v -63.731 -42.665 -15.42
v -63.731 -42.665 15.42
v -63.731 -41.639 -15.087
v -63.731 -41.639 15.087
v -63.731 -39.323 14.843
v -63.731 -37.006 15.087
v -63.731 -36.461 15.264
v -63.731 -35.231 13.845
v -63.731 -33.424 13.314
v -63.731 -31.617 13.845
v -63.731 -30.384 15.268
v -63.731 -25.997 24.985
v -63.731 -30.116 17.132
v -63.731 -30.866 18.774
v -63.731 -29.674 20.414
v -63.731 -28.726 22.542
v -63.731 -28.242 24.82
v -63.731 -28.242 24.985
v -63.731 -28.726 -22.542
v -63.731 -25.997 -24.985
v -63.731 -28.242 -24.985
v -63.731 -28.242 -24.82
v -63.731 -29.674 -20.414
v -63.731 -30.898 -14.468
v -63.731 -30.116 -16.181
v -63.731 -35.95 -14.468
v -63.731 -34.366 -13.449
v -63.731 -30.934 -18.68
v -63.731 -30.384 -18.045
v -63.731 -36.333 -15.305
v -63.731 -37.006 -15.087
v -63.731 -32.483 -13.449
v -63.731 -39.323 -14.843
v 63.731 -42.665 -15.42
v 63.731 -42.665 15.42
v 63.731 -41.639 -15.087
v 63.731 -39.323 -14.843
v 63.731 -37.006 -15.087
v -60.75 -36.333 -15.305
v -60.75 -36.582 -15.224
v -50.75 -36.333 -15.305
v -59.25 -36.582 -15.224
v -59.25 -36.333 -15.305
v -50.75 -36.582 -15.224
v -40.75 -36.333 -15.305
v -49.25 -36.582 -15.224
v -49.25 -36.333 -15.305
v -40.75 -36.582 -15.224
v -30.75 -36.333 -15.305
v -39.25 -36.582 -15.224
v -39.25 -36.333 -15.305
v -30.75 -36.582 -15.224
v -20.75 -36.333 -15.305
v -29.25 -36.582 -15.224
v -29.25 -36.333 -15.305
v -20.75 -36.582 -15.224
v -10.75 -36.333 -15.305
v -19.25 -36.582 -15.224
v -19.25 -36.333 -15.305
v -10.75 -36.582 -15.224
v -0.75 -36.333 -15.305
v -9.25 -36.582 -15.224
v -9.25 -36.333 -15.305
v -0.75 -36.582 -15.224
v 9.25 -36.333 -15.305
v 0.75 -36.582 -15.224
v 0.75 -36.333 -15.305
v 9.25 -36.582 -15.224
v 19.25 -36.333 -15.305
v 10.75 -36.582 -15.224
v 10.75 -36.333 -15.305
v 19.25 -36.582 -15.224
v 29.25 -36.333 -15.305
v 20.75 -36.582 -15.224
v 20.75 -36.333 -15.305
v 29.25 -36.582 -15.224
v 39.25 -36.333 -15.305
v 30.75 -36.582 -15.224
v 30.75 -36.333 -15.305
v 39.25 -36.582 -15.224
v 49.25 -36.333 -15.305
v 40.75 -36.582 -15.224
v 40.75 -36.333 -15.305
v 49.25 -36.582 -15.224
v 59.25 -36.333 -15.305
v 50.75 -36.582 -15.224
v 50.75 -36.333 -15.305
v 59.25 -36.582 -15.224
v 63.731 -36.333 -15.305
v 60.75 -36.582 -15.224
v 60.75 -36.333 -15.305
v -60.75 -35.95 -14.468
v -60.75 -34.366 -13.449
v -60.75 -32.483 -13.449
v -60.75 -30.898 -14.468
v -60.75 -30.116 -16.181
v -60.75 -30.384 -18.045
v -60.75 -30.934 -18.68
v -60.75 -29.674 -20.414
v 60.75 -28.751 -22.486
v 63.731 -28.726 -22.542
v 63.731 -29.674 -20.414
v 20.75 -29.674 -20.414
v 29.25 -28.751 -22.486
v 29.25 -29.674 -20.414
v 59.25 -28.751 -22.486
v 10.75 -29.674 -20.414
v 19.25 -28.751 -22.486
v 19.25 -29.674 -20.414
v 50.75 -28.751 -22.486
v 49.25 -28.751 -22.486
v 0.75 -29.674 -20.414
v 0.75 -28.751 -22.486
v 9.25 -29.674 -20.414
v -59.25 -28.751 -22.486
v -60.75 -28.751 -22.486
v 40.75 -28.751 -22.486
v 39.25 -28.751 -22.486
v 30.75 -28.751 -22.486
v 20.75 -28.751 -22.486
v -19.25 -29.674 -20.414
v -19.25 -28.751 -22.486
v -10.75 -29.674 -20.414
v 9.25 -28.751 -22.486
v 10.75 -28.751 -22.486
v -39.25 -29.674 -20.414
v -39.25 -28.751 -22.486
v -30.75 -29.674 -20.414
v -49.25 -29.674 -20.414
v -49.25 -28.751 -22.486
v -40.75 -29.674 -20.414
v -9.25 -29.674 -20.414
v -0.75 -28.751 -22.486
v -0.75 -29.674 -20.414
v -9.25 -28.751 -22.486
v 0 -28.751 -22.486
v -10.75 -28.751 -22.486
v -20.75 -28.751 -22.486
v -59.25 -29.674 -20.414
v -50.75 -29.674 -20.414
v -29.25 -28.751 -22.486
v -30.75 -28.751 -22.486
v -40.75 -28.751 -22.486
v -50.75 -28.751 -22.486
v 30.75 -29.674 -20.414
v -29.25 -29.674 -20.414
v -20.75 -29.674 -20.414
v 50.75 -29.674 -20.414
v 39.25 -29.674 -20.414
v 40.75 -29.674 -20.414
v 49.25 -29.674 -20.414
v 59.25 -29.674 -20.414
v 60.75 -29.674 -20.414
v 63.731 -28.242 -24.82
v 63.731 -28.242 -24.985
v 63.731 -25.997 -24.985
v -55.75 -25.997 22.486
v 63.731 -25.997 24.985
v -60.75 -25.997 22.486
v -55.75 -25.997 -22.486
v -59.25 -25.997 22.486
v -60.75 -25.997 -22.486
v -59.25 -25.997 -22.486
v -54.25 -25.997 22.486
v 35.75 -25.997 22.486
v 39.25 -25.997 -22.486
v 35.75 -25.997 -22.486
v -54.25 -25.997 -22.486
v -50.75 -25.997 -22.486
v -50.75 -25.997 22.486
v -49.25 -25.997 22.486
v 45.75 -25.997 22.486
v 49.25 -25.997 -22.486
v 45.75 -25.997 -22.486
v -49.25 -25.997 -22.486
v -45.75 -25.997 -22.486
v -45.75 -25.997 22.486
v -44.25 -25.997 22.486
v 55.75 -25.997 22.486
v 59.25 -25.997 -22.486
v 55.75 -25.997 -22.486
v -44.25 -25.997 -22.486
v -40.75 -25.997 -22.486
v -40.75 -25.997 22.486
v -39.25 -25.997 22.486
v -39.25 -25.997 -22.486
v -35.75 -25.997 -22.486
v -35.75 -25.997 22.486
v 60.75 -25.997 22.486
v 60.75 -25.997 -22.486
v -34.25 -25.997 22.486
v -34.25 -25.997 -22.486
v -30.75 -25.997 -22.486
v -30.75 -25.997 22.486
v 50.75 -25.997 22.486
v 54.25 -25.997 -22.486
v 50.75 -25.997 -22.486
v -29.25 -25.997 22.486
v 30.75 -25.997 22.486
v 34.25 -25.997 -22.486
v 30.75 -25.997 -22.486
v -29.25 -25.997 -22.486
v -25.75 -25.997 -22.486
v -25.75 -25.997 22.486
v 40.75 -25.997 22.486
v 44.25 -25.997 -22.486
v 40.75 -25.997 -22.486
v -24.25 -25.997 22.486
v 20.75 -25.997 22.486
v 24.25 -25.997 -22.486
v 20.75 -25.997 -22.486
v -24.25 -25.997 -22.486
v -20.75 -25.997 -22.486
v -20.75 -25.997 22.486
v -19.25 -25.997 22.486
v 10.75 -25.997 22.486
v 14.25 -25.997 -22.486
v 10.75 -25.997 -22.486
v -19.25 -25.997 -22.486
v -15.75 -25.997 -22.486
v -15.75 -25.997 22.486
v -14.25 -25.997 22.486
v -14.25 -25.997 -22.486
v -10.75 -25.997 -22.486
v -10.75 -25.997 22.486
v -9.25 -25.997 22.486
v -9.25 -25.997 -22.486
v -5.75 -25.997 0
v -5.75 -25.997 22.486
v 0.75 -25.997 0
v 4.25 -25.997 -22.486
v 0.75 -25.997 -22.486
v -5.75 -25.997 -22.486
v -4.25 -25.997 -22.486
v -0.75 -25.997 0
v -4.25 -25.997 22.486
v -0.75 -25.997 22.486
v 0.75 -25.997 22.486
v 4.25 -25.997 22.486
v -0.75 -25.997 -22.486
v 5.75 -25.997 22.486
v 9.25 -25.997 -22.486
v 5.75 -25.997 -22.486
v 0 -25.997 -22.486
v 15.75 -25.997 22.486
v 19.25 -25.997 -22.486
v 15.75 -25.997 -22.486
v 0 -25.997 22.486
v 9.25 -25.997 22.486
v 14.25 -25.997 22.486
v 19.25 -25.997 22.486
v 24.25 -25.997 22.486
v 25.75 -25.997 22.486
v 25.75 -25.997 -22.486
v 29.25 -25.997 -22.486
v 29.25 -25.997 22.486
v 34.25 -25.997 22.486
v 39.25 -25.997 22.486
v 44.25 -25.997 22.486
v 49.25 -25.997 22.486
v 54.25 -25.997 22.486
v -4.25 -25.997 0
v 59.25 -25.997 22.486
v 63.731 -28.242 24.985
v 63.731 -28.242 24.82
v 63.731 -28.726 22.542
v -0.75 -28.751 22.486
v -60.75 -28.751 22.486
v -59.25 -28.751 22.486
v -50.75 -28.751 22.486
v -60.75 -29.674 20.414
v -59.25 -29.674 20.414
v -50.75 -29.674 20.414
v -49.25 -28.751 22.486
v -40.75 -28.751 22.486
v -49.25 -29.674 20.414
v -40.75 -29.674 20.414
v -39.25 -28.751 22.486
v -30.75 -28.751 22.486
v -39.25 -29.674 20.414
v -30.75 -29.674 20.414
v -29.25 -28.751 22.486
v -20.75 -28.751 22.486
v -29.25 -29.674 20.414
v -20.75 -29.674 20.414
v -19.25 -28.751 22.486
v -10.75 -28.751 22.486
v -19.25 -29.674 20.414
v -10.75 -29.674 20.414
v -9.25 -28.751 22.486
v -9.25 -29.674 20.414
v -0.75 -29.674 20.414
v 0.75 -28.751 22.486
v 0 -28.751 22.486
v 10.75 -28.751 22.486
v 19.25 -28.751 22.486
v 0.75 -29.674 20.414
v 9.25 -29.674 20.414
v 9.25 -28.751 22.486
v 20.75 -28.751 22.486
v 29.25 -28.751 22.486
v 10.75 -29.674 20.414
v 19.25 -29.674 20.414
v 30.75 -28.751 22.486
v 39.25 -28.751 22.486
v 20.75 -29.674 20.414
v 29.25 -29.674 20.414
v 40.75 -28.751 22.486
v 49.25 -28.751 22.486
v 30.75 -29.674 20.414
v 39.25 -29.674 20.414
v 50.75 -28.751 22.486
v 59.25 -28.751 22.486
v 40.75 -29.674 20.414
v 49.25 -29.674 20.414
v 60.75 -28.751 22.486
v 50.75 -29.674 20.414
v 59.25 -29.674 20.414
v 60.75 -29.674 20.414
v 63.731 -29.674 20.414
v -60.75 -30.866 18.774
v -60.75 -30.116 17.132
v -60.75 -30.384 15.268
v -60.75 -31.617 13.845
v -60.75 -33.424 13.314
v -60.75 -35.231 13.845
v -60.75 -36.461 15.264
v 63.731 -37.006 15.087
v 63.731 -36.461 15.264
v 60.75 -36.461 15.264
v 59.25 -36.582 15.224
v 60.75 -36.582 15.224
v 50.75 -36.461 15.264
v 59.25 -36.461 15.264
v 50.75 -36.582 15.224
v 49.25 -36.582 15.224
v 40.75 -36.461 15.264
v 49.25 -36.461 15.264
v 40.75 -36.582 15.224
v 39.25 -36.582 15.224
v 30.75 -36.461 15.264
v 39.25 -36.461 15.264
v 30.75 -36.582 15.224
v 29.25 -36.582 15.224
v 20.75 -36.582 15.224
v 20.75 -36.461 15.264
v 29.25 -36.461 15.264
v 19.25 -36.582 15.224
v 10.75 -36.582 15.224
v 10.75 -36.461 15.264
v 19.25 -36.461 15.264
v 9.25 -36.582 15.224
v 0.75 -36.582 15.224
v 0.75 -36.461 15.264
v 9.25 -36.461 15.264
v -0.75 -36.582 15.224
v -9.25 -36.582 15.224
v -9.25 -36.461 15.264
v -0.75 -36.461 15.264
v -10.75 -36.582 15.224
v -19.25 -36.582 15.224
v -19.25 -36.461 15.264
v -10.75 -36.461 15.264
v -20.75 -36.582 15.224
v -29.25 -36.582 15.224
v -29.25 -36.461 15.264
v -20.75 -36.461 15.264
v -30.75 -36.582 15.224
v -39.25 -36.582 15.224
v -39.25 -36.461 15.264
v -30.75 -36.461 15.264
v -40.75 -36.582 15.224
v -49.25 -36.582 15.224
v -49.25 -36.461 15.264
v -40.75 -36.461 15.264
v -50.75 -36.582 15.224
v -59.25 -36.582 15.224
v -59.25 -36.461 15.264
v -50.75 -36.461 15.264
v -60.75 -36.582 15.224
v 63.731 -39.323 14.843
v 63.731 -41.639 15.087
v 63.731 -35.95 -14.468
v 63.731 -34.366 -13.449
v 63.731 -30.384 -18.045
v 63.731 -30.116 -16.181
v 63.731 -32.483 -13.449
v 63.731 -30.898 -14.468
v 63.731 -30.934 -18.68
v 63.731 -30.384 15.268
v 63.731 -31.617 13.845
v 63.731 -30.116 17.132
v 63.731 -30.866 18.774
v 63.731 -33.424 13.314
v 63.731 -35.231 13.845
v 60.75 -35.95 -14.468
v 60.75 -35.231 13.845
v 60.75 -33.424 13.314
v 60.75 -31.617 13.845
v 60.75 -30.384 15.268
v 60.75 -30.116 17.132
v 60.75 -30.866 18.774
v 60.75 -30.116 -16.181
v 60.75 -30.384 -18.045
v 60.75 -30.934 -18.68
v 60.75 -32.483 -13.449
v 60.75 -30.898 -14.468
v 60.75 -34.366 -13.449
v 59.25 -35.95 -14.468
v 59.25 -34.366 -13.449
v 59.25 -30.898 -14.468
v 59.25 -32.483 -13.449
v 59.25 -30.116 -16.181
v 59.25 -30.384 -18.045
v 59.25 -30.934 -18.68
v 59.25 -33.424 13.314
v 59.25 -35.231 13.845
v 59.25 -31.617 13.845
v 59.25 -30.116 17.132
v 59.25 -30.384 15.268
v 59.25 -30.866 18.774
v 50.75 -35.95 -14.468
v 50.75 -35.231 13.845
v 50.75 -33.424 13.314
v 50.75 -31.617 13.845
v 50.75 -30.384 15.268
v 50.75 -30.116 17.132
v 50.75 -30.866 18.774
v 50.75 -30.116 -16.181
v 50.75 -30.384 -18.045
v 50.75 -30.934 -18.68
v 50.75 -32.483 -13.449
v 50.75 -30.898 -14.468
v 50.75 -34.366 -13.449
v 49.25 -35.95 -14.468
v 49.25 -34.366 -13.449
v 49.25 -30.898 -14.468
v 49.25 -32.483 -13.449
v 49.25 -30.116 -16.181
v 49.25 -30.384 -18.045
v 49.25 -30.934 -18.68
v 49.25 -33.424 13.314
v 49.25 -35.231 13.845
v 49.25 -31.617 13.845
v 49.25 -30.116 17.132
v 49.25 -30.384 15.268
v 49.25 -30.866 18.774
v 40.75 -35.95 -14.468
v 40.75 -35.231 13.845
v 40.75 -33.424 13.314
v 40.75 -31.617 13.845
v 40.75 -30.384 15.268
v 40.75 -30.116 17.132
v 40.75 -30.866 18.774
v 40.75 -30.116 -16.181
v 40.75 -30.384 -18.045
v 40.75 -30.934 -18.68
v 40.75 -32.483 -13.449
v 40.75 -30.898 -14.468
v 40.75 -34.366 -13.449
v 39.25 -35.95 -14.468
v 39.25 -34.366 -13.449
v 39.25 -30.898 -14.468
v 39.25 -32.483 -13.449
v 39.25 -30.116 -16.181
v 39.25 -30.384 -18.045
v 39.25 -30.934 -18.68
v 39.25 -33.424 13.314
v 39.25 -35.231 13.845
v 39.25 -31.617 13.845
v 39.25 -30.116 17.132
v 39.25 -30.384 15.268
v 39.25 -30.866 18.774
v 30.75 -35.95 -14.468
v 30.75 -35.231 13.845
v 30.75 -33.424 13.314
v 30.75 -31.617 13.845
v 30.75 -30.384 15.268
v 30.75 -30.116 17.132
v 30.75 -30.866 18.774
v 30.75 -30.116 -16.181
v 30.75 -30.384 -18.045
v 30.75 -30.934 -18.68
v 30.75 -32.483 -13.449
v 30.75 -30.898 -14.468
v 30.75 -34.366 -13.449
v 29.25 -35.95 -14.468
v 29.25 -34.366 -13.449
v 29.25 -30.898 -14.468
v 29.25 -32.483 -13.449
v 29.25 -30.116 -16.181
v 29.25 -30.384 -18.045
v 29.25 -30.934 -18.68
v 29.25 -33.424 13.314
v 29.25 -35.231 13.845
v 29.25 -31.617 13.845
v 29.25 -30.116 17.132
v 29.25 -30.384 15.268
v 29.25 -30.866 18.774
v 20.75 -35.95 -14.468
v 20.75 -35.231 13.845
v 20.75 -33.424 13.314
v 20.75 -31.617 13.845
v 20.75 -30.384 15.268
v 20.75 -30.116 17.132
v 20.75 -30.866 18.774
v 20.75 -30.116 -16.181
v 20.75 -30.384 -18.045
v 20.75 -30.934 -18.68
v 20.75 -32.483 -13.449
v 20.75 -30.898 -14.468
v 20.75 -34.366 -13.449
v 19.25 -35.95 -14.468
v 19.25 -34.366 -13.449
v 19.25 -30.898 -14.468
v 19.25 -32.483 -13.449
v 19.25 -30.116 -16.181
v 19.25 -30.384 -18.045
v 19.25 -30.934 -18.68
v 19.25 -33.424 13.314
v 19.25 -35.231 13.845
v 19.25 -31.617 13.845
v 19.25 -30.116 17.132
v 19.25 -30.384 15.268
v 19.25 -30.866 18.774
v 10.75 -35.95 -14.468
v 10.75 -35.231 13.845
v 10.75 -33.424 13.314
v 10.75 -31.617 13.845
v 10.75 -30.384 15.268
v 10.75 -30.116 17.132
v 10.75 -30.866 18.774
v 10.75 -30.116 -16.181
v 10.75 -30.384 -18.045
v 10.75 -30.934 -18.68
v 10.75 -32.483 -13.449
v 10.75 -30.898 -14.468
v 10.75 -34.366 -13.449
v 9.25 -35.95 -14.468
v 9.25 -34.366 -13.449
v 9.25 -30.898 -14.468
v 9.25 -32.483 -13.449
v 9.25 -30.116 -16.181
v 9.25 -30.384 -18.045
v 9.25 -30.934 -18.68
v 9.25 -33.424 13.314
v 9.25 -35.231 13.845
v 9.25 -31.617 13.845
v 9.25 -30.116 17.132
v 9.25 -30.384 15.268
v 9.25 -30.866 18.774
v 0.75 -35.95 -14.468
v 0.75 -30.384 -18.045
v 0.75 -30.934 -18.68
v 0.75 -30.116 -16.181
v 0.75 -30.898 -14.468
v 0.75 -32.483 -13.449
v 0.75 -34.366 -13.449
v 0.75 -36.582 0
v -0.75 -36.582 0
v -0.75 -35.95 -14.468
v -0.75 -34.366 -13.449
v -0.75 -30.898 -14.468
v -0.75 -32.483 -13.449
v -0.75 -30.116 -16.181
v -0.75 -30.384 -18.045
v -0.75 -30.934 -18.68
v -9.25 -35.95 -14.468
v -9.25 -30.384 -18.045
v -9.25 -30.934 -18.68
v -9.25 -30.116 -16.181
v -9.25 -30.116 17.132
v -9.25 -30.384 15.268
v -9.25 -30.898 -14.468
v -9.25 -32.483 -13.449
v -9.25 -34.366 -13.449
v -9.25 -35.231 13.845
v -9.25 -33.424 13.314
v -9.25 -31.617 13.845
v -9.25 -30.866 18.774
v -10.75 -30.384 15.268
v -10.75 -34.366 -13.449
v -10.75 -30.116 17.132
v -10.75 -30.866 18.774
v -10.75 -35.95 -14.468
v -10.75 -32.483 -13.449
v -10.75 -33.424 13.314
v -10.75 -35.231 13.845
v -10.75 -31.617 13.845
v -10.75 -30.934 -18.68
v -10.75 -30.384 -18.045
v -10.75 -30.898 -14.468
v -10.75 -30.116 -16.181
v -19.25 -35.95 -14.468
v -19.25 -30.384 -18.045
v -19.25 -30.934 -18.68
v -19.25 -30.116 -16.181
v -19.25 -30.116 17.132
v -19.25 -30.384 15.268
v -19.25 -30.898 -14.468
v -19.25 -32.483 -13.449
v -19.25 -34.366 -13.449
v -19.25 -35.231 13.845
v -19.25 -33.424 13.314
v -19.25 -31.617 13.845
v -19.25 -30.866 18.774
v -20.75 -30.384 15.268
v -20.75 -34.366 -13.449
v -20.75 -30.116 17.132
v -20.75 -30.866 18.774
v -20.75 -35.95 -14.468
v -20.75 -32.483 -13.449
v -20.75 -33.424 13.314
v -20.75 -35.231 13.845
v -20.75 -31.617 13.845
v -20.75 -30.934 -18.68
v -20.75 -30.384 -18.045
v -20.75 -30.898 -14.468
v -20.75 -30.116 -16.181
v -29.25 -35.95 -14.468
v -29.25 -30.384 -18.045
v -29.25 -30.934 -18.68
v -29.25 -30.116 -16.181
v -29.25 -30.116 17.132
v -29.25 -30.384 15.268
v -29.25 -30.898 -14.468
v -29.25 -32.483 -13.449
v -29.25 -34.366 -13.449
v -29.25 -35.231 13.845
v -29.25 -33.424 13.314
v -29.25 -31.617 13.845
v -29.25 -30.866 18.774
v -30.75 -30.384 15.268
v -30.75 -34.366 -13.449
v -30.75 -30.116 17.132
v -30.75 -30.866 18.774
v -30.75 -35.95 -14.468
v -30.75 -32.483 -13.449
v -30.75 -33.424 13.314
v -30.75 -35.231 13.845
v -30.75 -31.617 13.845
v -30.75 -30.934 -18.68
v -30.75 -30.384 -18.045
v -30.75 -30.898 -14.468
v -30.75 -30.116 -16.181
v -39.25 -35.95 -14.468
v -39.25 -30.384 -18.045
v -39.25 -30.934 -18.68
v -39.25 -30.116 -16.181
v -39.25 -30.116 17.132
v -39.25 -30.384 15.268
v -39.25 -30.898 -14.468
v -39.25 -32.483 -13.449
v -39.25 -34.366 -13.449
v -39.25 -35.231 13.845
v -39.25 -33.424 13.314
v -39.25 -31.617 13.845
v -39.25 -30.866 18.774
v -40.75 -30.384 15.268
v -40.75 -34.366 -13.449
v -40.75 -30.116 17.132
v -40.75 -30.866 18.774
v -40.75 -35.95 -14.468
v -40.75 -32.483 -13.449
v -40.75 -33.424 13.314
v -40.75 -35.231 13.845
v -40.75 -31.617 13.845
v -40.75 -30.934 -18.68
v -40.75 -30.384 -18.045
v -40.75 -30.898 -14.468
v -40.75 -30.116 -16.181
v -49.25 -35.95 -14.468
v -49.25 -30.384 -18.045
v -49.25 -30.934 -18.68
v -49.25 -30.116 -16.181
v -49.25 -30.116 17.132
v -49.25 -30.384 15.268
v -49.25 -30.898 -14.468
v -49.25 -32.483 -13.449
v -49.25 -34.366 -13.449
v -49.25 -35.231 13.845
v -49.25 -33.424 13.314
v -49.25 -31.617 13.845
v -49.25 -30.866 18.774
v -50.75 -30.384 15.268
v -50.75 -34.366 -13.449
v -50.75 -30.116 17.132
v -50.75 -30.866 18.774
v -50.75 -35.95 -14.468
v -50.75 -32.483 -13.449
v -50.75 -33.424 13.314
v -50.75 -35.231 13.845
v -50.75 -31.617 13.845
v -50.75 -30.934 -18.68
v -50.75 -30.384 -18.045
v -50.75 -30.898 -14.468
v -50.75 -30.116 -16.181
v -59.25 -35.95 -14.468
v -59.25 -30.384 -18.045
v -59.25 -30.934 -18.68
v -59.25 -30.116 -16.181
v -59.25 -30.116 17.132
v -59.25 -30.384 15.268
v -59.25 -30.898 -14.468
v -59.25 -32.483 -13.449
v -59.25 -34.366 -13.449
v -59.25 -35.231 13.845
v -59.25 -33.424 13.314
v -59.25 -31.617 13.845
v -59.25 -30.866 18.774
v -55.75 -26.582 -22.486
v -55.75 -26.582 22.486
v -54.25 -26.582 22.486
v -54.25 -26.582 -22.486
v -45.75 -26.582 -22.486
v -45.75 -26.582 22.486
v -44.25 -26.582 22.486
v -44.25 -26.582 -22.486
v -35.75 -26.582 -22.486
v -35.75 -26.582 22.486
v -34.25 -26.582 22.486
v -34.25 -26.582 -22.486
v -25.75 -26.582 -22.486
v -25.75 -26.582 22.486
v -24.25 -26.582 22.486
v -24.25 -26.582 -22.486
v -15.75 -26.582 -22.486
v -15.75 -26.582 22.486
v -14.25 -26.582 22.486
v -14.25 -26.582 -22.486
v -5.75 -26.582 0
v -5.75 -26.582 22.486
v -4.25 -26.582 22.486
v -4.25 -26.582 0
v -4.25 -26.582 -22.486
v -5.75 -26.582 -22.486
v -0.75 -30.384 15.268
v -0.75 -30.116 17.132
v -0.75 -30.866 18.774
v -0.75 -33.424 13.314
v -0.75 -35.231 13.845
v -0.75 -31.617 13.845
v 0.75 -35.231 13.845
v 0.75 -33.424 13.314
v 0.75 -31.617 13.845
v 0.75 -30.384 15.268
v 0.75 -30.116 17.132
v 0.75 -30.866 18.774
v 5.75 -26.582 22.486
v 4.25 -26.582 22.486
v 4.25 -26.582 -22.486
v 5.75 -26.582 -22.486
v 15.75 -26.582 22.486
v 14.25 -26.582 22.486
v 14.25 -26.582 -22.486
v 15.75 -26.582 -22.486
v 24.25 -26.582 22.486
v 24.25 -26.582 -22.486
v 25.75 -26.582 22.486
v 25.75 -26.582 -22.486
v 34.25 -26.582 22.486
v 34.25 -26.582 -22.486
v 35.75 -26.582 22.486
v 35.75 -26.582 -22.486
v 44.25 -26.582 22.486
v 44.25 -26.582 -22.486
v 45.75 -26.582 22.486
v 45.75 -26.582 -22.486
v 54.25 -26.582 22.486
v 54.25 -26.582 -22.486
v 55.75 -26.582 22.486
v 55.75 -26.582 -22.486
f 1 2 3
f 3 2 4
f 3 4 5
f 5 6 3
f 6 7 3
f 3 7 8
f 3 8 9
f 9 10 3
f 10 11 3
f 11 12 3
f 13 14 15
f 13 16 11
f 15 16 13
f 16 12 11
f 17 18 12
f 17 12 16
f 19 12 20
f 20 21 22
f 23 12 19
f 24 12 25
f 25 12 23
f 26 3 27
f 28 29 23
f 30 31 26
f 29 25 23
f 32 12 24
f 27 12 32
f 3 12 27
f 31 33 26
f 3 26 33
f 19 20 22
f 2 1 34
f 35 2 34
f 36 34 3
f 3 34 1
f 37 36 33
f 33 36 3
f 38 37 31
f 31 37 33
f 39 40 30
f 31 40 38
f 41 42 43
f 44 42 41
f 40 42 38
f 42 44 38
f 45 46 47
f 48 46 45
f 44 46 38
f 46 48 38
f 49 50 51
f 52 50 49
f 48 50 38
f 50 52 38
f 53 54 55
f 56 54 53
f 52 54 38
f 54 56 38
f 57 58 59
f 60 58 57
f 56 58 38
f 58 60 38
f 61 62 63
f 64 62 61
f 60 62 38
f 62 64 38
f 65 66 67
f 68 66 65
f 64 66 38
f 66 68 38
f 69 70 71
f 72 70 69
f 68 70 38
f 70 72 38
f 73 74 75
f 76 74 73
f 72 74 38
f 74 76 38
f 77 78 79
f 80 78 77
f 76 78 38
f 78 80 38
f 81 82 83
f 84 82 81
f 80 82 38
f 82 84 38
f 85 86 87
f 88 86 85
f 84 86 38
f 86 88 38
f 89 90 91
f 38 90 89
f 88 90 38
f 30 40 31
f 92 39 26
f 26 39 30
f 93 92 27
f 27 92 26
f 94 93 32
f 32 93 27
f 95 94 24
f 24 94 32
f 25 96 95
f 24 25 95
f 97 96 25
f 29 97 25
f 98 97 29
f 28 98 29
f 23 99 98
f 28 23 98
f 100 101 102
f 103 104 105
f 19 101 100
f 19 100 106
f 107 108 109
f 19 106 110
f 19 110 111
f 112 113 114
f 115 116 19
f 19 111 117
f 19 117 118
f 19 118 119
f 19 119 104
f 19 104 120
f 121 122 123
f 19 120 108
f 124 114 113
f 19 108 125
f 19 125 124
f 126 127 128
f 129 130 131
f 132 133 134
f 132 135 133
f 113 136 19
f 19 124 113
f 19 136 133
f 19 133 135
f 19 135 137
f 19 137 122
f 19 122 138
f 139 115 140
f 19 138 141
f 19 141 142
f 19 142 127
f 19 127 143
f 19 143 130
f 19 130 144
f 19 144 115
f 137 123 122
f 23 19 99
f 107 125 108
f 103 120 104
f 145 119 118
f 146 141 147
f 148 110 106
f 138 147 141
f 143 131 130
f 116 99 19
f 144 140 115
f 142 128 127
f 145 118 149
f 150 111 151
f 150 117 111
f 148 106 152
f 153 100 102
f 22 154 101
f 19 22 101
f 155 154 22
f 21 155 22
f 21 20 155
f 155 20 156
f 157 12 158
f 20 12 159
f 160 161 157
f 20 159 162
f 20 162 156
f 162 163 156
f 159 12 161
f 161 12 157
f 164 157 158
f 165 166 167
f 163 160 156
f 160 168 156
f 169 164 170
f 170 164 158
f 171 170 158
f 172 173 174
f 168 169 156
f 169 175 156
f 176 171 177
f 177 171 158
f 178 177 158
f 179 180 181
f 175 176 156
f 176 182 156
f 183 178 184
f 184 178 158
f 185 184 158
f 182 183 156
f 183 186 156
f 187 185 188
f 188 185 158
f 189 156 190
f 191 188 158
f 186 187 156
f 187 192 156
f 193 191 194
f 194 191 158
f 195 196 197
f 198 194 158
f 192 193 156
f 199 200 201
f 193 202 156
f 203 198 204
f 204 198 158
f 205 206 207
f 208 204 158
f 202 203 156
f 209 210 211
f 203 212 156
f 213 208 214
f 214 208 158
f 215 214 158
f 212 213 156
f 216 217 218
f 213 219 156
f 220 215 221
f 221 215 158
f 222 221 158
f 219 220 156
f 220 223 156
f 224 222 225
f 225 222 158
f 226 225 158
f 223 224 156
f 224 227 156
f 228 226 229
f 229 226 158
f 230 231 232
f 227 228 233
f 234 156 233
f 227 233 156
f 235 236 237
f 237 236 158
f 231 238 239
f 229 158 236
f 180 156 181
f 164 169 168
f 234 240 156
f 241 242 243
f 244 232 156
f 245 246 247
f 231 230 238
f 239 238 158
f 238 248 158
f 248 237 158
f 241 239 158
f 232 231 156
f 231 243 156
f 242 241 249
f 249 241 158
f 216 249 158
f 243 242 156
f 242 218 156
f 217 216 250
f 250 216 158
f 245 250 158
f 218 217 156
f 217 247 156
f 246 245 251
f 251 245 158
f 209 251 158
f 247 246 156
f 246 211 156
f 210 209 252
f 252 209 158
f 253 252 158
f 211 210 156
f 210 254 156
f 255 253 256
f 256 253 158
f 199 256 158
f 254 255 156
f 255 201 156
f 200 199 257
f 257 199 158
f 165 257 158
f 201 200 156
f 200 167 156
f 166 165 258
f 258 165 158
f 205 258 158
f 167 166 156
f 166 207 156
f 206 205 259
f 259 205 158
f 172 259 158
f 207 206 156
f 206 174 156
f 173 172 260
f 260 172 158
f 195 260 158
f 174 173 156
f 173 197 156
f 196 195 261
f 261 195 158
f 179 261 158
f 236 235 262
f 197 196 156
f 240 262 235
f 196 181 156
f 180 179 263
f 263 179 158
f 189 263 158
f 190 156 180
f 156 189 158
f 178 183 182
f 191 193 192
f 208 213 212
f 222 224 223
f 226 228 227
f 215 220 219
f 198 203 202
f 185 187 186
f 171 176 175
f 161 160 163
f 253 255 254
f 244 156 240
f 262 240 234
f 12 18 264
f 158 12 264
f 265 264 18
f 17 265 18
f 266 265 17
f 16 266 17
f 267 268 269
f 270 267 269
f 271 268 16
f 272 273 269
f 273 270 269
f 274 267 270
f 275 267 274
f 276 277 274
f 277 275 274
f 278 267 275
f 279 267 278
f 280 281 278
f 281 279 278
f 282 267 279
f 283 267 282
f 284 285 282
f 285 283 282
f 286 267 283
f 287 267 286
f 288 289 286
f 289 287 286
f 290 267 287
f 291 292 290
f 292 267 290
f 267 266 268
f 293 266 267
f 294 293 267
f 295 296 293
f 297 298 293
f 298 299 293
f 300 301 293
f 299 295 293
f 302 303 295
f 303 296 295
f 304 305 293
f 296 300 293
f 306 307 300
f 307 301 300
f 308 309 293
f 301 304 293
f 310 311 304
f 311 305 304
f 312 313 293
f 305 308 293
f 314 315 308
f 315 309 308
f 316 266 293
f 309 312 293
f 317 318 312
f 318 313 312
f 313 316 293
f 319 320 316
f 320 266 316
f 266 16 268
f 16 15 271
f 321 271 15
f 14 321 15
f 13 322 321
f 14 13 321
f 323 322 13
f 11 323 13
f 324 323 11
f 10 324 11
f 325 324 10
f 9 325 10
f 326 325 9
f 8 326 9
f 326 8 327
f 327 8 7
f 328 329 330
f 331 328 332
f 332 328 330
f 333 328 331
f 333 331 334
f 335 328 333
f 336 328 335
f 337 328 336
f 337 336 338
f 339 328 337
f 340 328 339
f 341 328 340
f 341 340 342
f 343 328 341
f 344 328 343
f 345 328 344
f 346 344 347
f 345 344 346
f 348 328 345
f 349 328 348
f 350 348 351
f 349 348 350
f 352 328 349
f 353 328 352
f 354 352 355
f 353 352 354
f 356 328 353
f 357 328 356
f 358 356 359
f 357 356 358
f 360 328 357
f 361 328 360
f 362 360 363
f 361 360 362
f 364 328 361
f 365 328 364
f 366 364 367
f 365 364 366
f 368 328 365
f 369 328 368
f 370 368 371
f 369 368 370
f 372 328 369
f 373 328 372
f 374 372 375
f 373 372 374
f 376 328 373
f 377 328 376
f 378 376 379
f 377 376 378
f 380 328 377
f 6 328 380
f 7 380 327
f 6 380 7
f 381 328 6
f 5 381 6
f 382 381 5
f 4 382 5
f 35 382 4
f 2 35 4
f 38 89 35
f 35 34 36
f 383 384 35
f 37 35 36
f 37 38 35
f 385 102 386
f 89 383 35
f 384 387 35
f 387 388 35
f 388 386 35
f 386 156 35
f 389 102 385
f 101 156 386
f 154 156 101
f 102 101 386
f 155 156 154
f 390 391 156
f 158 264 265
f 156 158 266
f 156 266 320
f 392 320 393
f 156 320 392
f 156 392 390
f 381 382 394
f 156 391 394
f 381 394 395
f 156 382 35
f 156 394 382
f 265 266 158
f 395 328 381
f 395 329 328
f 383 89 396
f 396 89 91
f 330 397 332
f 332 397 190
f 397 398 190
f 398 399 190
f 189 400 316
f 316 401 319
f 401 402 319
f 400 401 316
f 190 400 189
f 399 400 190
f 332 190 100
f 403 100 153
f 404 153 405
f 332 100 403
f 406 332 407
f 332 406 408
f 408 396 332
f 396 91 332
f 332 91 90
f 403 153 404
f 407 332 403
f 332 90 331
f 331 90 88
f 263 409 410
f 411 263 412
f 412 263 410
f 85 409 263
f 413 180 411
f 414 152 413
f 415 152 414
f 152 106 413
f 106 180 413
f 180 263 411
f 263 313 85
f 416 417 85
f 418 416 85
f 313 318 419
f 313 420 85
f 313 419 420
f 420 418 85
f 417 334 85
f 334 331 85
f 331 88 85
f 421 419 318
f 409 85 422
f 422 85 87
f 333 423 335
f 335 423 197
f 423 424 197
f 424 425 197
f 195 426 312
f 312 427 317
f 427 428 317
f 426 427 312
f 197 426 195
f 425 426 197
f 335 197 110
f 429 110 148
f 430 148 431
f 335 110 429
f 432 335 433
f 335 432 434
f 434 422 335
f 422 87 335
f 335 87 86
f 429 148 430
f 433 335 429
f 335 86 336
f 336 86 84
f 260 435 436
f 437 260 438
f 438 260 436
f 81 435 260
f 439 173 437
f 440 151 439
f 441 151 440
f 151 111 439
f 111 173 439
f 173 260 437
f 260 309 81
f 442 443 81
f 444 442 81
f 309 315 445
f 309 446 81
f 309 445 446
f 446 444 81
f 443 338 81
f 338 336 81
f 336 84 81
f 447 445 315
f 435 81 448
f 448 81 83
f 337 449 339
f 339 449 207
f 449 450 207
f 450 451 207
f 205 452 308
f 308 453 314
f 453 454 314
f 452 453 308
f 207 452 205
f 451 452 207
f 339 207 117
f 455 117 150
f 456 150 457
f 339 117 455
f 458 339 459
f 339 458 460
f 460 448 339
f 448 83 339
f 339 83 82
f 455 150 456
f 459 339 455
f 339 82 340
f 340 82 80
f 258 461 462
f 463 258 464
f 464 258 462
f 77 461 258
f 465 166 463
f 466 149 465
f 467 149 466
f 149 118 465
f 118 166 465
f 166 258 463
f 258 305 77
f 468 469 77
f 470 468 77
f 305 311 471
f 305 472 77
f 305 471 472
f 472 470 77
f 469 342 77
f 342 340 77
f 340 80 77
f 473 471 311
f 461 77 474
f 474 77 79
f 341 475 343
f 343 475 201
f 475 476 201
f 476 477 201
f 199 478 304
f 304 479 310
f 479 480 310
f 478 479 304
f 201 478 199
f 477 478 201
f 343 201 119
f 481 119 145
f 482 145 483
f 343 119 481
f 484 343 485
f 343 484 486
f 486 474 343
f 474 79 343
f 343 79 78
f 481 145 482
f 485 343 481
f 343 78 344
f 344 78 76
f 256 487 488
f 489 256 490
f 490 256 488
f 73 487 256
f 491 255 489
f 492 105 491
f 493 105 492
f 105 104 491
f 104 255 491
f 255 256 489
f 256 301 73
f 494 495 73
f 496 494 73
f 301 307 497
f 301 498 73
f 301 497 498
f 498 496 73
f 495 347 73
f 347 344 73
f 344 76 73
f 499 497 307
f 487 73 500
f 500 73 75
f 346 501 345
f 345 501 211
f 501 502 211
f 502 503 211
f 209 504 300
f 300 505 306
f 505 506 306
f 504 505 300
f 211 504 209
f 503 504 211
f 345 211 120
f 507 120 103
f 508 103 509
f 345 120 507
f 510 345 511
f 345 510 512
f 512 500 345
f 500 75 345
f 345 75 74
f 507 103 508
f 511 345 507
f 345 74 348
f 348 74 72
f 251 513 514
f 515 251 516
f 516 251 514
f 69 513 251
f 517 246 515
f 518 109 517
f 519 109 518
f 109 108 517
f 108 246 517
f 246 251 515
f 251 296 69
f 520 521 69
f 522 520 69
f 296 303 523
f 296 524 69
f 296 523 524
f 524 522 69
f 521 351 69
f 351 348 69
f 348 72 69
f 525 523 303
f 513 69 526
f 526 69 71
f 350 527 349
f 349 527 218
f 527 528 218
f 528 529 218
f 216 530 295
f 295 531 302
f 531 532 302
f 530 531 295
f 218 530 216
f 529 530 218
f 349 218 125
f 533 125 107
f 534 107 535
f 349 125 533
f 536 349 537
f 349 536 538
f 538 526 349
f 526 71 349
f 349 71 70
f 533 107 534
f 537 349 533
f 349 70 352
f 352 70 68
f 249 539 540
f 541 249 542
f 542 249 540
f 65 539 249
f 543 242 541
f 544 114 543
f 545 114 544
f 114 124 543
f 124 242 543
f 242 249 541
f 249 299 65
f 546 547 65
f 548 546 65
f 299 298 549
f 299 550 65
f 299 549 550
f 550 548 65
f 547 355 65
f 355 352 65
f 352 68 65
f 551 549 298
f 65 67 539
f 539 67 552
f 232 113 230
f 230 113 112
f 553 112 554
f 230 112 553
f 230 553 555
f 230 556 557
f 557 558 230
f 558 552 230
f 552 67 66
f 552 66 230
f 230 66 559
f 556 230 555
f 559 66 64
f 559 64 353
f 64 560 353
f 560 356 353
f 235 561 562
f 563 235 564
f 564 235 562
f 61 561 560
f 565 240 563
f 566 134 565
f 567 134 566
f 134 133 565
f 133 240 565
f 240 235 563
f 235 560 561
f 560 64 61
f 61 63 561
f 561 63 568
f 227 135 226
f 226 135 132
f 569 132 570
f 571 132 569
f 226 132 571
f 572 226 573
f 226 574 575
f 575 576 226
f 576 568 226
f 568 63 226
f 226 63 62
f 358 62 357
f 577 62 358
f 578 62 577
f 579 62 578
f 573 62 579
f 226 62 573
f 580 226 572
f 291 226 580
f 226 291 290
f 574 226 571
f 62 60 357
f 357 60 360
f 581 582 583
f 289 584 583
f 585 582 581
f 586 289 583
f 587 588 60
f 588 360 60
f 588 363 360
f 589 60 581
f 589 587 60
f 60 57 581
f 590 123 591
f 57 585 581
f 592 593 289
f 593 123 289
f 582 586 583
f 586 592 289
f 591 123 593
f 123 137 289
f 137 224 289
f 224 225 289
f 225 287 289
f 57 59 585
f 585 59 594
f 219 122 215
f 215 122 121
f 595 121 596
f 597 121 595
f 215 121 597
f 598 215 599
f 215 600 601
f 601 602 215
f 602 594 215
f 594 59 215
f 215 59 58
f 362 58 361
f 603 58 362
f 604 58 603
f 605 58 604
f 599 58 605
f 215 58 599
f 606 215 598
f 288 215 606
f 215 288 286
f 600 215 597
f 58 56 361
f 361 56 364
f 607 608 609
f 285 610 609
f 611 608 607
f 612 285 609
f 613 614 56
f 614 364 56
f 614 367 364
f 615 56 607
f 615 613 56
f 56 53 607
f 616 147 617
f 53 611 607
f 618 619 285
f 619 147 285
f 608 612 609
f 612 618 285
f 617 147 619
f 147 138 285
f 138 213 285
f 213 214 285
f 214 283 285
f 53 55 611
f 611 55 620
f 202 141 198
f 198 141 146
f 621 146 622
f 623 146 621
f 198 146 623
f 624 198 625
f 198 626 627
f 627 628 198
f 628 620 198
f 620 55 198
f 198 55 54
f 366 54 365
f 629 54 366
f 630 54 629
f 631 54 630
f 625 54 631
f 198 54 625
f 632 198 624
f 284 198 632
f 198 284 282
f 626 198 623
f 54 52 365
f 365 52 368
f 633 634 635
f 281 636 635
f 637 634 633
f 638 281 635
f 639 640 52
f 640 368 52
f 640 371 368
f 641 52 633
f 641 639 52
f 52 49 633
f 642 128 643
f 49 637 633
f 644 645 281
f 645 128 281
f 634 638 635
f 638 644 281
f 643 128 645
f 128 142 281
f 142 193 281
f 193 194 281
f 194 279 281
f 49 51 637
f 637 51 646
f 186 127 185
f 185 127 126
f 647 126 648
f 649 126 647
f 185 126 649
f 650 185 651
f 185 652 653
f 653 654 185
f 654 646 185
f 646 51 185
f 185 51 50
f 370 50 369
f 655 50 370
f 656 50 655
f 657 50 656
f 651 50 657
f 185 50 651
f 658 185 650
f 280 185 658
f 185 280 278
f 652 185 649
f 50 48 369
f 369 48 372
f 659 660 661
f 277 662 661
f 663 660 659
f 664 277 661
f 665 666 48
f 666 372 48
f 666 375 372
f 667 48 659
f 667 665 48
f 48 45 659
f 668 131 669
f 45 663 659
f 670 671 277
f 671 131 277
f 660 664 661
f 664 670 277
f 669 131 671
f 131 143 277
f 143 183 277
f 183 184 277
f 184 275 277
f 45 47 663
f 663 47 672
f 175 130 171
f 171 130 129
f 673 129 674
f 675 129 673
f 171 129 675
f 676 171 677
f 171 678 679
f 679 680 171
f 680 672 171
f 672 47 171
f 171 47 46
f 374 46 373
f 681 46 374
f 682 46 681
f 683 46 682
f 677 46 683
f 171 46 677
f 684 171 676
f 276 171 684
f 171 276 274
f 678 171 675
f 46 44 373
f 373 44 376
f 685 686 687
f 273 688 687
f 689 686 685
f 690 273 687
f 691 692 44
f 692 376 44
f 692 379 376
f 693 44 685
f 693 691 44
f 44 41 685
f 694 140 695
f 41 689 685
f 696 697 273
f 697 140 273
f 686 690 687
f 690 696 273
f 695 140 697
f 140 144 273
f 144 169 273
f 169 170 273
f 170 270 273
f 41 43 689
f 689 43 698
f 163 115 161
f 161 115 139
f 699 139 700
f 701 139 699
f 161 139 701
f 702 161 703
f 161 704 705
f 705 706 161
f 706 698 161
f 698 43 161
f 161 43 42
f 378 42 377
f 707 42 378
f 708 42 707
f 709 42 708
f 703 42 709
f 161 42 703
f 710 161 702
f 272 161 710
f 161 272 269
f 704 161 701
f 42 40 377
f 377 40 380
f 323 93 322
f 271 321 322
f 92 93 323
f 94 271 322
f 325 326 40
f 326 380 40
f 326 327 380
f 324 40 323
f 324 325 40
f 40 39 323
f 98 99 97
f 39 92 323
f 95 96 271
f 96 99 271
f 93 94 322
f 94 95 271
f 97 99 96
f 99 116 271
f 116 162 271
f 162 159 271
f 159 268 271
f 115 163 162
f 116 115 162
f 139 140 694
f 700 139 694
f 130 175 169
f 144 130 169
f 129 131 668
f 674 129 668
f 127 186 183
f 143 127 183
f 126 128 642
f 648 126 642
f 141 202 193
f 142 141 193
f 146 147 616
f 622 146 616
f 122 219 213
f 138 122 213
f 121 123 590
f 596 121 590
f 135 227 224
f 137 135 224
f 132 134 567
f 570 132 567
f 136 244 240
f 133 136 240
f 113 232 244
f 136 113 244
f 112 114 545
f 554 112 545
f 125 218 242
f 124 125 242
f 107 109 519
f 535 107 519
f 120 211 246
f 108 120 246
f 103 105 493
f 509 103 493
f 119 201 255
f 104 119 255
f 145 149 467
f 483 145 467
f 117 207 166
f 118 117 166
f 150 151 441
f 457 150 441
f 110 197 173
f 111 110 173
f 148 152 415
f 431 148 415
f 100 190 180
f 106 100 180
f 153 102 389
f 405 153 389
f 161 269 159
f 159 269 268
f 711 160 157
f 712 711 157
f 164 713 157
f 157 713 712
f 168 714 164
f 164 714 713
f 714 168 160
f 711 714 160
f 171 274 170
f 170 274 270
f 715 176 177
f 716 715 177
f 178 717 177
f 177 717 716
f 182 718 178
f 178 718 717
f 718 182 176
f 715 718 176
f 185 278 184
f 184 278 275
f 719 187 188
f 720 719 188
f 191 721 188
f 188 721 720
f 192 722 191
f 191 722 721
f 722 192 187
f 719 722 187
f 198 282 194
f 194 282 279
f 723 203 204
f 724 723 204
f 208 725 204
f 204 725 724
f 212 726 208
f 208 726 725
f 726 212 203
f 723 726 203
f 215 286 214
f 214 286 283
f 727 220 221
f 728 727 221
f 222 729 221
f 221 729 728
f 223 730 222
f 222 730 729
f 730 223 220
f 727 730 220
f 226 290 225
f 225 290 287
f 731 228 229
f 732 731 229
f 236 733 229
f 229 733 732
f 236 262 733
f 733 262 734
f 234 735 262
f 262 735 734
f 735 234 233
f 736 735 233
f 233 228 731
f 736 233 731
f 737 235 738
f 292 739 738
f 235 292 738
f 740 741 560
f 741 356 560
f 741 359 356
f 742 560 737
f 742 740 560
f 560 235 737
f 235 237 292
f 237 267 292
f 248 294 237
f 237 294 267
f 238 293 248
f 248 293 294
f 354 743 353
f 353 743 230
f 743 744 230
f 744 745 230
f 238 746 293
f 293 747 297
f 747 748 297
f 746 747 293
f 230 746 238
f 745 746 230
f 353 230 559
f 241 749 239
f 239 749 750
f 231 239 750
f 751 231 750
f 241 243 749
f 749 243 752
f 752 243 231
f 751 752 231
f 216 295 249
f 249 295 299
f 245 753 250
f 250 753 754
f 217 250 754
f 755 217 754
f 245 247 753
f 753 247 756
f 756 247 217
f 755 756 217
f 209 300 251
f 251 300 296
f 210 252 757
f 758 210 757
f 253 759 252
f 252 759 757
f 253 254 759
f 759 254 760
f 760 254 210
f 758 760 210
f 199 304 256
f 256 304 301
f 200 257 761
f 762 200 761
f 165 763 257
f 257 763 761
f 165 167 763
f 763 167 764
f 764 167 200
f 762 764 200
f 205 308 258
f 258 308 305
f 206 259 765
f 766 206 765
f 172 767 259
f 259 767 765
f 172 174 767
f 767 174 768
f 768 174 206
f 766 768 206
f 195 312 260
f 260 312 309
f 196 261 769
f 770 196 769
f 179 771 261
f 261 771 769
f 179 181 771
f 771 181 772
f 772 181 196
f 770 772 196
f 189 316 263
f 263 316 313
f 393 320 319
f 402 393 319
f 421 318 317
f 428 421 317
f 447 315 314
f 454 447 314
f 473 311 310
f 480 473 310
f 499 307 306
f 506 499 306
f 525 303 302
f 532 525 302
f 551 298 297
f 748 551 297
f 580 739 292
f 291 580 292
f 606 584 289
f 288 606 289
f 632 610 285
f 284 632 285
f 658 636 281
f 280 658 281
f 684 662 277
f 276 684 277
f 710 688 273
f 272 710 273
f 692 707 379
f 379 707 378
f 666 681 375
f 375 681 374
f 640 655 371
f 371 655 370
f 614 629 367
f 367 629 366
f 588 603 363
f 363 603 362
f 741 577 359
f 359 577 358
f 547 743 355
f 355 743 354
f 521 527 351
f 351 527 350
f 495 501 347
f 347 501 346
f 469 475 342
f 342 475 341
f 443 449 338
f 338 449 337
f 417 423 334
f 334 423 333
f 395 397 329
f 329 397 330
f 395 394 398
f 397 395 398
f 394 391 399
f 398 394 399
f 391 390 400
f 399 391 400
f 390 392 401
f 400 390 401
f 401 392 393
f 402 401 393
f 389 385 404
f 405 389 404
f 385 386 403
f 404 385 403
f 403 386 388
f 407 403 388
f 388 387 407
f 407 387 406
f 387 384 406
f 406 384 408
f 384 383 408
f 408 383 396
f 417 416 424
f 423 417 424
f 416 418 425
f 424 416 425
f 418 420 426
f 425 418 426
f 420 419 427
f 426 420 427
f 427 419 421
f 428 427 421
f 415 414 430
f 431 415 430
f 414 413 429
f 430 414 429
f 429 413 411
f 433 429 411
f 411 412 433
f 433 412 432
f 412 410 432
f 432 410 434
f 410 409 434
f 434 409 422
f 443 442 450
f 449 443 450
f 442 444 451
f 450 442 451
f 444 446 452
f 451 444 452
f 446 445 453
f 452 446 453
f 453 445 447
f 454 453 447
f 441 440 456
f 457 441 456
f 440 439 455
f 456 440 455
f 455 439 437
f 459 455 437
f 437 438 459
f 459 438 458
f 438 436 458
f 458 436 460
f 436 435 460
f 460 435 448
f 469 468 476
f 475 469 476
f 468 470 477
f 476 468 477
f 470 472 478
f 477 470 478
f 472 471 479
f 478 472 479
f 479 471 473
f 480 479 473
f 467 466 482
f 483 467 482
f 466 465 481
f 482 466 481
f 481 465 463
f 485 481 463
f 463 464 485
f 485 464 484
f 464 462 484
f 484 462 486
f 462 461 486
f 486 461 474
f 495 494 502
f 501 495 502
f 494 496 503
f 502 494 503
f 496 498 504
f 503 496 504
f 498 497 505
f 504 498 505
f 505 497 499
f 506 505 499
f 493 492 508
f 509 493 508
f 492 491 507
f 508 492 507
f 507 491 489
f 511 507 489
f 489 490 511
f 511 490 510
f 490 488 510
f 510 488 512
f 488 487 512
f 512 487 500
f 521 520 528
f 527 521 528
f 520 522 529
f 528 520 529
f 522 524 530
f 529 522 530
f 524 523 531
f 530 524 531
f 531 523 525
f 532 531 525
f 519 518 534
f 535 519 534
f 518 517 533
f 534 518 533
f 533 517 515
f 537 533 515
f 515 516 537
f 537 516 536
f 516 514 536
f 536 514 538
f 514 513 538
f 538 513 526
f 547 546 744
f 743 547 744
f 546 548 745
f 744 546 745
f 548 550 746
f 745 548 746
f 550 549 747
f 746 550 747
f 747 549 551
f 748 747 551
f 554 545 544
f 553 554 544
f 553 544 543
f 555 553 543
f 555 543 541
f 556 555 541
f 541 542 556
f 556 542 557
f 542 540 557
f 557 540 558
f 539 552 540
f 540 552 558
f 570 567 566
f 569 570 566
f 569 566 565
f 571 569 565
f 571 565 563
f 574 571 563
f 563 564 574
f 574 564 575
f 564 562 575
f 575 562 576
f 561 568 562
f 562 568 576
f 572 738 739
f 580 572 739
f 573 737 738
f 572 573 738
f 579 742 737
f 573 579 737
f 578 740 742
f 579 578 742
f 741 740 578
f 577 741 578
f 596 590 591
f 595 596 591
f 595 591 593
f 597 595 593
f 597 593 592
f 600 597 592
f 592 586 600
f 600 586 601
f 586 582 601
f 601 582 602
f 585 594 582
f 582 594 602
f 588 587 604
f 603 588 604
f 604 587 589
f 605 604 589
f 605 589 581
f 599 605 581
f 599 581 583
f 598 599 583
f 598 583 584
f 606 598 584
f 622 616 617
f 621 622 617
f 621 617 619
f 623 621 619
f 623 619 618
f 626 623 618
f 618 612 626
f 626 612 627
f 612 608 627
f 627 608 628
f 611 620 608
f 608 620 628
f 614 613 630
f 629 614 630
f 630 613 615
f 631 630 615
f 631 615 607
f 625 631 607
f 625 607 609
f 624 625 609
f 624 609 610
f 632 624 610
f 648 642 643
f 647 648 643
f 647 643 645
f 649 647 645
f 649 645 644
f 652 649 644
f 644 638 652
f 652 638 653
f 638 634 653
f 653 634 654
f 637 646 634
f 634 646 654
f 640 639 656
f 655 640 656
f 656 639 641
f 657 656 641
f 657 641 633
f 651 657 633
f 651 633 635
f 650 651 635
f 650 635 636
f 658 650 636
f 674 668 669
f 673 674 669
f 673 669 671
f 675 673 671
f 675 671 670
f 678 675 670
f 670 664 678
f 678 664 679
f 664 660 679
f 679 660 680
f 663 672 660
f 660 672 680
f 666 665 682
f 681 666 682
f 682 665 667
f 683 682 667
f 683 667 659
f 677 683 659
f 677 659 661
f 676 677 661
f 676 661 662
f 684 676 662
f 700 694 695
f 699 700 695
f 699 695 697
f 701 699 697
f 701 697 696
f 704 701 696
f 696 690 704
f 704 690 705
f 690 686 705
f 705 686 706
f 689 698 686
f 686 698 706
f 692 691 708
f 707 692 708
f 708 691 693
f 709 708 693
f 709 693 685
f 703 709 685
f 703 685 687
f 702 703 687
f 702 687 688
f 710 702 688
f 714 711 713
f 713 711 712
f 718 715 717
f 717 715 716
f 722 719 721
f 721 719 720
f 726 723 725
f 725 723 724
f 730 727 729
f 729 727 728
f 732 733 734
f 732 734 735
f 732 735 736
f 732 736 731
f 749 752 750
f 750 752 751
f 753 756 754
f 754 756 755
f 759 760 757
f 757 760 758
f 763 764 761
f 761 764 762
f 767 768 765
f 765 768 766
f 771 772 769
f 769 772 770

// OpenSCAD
// file: 3dprinter.scad
//===============================================//
//===============================================//
//     BioDeploy SCAD file = 3dprinter.scad      //
//                 Start File                    //
//===============================================//
//===============================================//
//choose the max specs for your 3d printer
//here we use a replicator2x specs
x_print_max = 24.6*10;
y_print_max = 15.2*10;
z_print_max = 15.5*10;
//don't forget *10 to put unit in centimeters
//-----------------------------------------------//
//===============================================//
//===============================================//
//     BioDeploy SCAD file = 3dprinter.scad      //
//                   End  File                   //
//===============================================//
//===============================================//
// main file
//===============================================//
//===============================================//
//BioDeploy SCAD file = hydrolyseur_top_core_plates_fixation_R.scad//
//                 Start File                    //
//===============================================//
//===============================================//
//-----------------------------------------------//
//===============================================//
//             3d printer parameters             //
//===============================================//
include <3dprinter.scad>
//===============================================//
//                 variables                     //
//===============================================//
include <hydrolyseur_variables.scad>

//===============================================//
//               Calls for use                   //
//===============================================//

//===============================================//
//                    Trees                      //
//===============================================//
module number1()
{

for (i_x = [0:core_plate_number/4]) 
{
translate([i_x*10,0,0]) cube([x_core_plate_size,y_h2o_top_core_plate+3,z_h2o_top_core_plate],center = true);
}
}

module number2()
{

for (i_x = [0:core_plate_number/4]) 
{
translate([i_x*10,0,0]) cube([x_core_plate_size,y_h2o_top_core_plate+3,z_h2o_top_core_plate],center = true);
}
}



//fixation



module fixation(){
union()
{
hull() {
color("Red",1)translate([0,-y_h2o_top_core_int/2,z_h2o_top_core_int/2-(z_h2o_top_core_int/3)/2])cube([x_h2o_top_core_int,y_h2o_top_core_mid/5,z_h2o_top_core_int/3],center = true);
color("Red",1)translate([0,-y_h2o_top_core_int/2,-z_h2o_top_core_int/2+(z_h2o_top_core_int/3)/2])cube([x_h2o_top_core_int,y_h2o_top_core_mid/5,z_h2o_top_core_int/3],center = true);
}

color("orange")  translate([0,-y_h2o_top_core_int/1.7,0])cube([x_h2o_top_core_int,y_h2o_top_core_int/10,z_h2o_top_core_int+2],center = true);
}}


module fixation2() {

difference() {
union()
{
fixation();

}

//axe

union() {
translate([0,-y_h2o_top_core_int/2,z_h2o_top_core_int/3])rotate([0,90,0])cylinder(2*x_h2o_top_core_int,y_h2o_top_core_int/20,y_h2o_top_core_int/20,center=true);
translate([0,y_h2o_top_core_int/2,z_h2o_top_core_int/3])rotate([0,90,0])cylinder(2*x_h2o_top_core_int,y_h2o_top_core_int/20,y_h2o_top_core_int/20,center=true);
translate([0,-y_h2o_top_core_int/2,-z_h2o_top_core_int/3])rotate([0,90,0])cylinder(2*x_h2o_top_core_int,y_h2o_top_core_int/20,y_h2o_top_core_int/20,center=true);
translate([0,y_h2o_top_core_int/2,-z_h2o_top_core_int/3])rotate([0,90,0])cylinder(2*x_h2o_top_core_int,y_h2o_top_core_int/20,y_h2o_top_core_int/20,center=true);


//open

translate([0,y_h2o_top_core_int/1.7,(z_h2o_top_core_int+2)/2])rotate([0,90,0])cylinder(2*x_h2o_top_core_int,y_h2o_top_core_int/6,y_h2o_top_core_int/6,center=true);
translate([0,-y_h2o_top_core_int/1.7,(z_h2o_top_core_int+2)/2])rotate([0,90,0])cylinder(2*x_h2o_top_core_int,y_h2o_top_core_int/6,y_h2o_top_core_int/6,center=true);
translate([0,-y_h2o_top_core_int/1.7,-(z_h2o_top_core_int+2)/2])rotate([0,90,0])cylinder(2*x_h2o_top_core_int,y_h2o_top_core_int/6,y_h2o_top_core_int/6,center=true);
translate([0,y_h2o_top_core_int/1.7,-(z_h2o_top_core_int+2)/2])rotate([0,90,0])cylinder(2*x_h2o_top_core_int,y_h2o_top_core_int/6,y_h2o_top_core_int/6,center=true);

translate([0,-5,0]) number1();
translate([-5,5,0]) number2();

rotate([0,180,0])translate([0,-5,0]) number1();
rotate([0,180,0])translate([+5,+5,0]) number2();
}
}

}

fixation2();




//%cube([x_h2o_top_core_ext,y_h2o_top_core_ext,z_h2o_top_core_ext],center = true);

//-----------------------------------------------//
//===============================================//
//===============================================//
//BioDeploy SCAD file = hydrolyseur_top_core_plates_fixation.scad//
//                   End  File                   //
//===============================================//
//===============================================//
